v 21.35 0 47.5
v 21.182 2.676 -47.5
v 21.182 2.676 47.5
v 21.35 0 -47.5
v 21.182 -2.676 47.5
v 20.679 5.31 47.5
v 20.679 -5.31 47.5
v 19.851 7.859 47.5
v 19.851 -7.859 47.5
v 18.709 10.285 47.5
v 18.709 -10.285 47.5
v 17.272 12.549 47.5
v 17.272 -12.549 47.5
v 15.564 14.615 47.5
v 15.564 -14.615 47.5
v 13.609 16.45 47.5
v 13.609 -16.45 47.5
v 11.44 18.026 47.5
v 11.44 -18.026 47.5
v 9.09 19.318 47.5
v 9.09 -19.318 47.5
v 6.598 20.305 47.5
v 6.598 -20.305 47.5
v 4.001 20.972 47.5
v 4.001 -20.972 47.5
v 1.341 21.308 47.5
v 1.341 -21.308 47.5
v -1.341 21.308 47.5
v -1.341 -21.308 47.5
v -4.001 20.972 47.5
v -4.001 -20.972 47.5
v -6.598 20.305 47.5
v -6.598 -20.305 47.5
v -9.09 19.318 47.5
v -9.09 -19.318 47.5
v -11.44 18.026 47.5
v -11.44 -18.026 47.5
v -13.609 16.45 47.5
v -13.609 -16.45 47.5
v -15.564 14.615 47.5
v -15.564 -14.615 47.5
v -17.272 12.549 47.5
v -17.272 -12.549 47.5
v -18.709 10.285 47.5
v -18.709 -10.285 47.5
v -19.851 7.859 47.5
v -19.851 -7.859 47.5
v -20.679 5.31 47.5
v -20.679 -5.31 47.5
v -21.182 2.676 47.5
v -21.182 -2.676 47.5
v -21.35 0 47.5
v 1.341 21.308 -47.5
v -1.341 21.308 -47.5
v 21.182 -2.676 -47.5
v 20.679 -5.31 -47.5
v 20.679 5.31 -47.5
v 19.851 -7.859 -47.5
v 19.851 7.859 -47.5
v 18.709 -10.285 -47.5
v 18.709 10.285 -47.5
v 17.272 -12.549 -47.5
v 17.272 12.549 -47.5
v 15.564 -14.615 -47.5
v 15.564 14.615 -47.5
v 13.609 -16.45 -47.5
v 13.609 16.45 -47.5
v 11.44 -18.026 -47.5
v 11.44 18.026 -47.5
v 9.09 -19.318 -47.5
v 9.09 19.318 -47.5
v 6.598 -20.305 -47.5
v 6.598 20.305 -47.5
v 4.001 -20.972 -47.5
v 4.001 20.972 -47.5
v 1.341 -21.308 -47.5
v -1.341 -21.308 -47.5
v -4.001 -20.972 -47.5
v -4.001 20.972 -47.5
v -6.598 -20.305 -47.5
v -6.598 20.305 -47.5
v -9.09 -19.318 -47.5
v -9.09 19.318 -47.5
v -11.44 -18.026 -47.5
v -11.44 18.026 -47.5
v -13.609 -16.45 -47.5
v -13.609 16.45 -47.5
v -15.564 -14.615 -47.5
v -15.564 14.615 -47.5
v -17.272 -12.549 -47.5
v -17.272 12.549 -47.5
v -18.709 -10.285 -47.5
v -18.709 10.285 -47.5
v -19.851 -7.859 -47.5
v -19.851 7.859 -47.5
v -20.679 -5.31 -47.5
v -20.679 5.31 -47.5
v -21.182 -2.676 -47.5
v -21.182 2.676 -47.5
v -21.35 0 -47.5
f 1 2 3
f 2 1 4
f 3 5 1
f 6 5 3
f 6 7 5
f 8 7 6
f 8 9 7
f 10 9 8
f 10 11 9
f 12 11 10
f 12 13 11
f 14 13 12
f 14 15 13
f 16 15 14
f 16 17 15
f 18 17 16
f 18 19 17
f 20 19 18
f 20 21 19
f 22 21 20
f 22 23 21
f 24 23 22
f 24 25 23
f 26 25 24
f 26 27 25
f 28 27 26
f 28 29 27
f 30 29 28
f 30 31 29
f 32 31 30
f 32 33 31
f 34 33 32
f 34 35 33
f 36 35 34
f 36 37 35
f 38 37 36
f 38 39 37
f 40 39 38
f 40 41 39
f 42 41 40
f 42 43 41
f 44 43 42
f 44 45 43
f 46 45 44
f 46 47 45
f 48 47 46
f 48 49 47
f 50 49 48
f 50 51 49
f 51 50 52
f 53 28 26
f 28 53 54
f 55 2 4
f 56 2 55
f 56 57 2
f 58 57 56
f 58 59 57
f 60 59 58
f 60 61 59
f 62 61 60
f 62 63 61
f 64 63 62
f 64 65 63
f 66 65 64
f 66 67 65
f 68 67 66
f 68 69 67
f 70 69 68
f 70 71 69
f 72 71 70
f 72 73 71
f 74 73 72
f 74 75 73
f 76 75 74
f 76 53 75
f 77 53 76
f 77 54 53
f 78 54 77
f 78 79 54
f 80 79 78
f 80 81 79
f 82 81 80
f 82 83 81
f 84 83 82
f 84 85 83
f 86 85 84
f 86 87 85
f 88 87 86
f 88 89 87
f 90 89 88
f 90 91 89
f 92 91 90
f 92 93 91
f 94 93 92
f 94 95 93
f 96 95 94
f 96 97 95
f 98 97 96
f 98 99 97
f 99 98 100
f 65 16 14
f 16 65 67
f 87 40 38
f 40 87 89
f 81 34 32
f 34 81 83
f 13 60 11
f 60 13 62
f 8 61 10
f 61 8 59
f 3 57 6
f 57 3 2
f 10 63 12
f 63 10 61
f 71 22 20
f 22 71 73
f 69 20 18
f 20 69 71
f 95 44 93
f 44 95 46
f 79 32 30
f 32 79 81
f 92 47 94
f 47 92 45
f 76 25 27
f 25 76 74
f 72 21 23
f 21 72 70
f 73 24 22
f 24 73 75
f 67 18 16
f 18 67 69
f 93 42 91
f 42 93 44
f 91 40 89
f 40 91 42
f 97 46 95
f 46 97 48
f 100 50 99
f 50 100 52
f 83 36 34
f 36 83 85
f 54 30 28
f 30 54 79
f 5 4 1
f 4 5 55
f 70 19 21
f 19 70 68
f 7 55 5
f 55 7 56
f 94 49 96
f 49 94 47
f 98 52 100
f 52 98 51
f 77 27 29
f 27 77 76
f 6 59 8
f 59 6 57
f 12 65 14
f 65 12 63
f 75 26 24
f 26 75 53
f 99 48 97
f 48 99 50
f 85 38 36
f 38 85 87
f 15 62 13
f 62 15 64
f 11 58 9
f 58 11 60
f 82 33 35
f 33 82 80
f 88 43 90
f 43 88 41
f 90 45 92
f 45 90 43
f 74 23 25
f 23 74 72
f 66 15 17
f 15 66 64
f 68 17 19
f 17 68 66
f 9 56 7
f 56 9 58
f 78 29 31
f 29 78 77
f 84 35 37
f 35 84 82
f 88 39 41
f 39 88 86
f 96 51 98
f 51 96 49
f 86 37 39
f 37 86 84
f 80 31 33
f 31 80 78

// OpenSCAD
$fn = 50;


difference() {
	union() {
		translate(v = [0, 0, -47.5000000000]) {
			cylinder(h = 95, r = 21.3500000000);
		}
	}
	union() {
		translate(v = [0, 0, -100.0000000000]) {
			cylinder(h = 200, r = 0);
		}
	}
}
